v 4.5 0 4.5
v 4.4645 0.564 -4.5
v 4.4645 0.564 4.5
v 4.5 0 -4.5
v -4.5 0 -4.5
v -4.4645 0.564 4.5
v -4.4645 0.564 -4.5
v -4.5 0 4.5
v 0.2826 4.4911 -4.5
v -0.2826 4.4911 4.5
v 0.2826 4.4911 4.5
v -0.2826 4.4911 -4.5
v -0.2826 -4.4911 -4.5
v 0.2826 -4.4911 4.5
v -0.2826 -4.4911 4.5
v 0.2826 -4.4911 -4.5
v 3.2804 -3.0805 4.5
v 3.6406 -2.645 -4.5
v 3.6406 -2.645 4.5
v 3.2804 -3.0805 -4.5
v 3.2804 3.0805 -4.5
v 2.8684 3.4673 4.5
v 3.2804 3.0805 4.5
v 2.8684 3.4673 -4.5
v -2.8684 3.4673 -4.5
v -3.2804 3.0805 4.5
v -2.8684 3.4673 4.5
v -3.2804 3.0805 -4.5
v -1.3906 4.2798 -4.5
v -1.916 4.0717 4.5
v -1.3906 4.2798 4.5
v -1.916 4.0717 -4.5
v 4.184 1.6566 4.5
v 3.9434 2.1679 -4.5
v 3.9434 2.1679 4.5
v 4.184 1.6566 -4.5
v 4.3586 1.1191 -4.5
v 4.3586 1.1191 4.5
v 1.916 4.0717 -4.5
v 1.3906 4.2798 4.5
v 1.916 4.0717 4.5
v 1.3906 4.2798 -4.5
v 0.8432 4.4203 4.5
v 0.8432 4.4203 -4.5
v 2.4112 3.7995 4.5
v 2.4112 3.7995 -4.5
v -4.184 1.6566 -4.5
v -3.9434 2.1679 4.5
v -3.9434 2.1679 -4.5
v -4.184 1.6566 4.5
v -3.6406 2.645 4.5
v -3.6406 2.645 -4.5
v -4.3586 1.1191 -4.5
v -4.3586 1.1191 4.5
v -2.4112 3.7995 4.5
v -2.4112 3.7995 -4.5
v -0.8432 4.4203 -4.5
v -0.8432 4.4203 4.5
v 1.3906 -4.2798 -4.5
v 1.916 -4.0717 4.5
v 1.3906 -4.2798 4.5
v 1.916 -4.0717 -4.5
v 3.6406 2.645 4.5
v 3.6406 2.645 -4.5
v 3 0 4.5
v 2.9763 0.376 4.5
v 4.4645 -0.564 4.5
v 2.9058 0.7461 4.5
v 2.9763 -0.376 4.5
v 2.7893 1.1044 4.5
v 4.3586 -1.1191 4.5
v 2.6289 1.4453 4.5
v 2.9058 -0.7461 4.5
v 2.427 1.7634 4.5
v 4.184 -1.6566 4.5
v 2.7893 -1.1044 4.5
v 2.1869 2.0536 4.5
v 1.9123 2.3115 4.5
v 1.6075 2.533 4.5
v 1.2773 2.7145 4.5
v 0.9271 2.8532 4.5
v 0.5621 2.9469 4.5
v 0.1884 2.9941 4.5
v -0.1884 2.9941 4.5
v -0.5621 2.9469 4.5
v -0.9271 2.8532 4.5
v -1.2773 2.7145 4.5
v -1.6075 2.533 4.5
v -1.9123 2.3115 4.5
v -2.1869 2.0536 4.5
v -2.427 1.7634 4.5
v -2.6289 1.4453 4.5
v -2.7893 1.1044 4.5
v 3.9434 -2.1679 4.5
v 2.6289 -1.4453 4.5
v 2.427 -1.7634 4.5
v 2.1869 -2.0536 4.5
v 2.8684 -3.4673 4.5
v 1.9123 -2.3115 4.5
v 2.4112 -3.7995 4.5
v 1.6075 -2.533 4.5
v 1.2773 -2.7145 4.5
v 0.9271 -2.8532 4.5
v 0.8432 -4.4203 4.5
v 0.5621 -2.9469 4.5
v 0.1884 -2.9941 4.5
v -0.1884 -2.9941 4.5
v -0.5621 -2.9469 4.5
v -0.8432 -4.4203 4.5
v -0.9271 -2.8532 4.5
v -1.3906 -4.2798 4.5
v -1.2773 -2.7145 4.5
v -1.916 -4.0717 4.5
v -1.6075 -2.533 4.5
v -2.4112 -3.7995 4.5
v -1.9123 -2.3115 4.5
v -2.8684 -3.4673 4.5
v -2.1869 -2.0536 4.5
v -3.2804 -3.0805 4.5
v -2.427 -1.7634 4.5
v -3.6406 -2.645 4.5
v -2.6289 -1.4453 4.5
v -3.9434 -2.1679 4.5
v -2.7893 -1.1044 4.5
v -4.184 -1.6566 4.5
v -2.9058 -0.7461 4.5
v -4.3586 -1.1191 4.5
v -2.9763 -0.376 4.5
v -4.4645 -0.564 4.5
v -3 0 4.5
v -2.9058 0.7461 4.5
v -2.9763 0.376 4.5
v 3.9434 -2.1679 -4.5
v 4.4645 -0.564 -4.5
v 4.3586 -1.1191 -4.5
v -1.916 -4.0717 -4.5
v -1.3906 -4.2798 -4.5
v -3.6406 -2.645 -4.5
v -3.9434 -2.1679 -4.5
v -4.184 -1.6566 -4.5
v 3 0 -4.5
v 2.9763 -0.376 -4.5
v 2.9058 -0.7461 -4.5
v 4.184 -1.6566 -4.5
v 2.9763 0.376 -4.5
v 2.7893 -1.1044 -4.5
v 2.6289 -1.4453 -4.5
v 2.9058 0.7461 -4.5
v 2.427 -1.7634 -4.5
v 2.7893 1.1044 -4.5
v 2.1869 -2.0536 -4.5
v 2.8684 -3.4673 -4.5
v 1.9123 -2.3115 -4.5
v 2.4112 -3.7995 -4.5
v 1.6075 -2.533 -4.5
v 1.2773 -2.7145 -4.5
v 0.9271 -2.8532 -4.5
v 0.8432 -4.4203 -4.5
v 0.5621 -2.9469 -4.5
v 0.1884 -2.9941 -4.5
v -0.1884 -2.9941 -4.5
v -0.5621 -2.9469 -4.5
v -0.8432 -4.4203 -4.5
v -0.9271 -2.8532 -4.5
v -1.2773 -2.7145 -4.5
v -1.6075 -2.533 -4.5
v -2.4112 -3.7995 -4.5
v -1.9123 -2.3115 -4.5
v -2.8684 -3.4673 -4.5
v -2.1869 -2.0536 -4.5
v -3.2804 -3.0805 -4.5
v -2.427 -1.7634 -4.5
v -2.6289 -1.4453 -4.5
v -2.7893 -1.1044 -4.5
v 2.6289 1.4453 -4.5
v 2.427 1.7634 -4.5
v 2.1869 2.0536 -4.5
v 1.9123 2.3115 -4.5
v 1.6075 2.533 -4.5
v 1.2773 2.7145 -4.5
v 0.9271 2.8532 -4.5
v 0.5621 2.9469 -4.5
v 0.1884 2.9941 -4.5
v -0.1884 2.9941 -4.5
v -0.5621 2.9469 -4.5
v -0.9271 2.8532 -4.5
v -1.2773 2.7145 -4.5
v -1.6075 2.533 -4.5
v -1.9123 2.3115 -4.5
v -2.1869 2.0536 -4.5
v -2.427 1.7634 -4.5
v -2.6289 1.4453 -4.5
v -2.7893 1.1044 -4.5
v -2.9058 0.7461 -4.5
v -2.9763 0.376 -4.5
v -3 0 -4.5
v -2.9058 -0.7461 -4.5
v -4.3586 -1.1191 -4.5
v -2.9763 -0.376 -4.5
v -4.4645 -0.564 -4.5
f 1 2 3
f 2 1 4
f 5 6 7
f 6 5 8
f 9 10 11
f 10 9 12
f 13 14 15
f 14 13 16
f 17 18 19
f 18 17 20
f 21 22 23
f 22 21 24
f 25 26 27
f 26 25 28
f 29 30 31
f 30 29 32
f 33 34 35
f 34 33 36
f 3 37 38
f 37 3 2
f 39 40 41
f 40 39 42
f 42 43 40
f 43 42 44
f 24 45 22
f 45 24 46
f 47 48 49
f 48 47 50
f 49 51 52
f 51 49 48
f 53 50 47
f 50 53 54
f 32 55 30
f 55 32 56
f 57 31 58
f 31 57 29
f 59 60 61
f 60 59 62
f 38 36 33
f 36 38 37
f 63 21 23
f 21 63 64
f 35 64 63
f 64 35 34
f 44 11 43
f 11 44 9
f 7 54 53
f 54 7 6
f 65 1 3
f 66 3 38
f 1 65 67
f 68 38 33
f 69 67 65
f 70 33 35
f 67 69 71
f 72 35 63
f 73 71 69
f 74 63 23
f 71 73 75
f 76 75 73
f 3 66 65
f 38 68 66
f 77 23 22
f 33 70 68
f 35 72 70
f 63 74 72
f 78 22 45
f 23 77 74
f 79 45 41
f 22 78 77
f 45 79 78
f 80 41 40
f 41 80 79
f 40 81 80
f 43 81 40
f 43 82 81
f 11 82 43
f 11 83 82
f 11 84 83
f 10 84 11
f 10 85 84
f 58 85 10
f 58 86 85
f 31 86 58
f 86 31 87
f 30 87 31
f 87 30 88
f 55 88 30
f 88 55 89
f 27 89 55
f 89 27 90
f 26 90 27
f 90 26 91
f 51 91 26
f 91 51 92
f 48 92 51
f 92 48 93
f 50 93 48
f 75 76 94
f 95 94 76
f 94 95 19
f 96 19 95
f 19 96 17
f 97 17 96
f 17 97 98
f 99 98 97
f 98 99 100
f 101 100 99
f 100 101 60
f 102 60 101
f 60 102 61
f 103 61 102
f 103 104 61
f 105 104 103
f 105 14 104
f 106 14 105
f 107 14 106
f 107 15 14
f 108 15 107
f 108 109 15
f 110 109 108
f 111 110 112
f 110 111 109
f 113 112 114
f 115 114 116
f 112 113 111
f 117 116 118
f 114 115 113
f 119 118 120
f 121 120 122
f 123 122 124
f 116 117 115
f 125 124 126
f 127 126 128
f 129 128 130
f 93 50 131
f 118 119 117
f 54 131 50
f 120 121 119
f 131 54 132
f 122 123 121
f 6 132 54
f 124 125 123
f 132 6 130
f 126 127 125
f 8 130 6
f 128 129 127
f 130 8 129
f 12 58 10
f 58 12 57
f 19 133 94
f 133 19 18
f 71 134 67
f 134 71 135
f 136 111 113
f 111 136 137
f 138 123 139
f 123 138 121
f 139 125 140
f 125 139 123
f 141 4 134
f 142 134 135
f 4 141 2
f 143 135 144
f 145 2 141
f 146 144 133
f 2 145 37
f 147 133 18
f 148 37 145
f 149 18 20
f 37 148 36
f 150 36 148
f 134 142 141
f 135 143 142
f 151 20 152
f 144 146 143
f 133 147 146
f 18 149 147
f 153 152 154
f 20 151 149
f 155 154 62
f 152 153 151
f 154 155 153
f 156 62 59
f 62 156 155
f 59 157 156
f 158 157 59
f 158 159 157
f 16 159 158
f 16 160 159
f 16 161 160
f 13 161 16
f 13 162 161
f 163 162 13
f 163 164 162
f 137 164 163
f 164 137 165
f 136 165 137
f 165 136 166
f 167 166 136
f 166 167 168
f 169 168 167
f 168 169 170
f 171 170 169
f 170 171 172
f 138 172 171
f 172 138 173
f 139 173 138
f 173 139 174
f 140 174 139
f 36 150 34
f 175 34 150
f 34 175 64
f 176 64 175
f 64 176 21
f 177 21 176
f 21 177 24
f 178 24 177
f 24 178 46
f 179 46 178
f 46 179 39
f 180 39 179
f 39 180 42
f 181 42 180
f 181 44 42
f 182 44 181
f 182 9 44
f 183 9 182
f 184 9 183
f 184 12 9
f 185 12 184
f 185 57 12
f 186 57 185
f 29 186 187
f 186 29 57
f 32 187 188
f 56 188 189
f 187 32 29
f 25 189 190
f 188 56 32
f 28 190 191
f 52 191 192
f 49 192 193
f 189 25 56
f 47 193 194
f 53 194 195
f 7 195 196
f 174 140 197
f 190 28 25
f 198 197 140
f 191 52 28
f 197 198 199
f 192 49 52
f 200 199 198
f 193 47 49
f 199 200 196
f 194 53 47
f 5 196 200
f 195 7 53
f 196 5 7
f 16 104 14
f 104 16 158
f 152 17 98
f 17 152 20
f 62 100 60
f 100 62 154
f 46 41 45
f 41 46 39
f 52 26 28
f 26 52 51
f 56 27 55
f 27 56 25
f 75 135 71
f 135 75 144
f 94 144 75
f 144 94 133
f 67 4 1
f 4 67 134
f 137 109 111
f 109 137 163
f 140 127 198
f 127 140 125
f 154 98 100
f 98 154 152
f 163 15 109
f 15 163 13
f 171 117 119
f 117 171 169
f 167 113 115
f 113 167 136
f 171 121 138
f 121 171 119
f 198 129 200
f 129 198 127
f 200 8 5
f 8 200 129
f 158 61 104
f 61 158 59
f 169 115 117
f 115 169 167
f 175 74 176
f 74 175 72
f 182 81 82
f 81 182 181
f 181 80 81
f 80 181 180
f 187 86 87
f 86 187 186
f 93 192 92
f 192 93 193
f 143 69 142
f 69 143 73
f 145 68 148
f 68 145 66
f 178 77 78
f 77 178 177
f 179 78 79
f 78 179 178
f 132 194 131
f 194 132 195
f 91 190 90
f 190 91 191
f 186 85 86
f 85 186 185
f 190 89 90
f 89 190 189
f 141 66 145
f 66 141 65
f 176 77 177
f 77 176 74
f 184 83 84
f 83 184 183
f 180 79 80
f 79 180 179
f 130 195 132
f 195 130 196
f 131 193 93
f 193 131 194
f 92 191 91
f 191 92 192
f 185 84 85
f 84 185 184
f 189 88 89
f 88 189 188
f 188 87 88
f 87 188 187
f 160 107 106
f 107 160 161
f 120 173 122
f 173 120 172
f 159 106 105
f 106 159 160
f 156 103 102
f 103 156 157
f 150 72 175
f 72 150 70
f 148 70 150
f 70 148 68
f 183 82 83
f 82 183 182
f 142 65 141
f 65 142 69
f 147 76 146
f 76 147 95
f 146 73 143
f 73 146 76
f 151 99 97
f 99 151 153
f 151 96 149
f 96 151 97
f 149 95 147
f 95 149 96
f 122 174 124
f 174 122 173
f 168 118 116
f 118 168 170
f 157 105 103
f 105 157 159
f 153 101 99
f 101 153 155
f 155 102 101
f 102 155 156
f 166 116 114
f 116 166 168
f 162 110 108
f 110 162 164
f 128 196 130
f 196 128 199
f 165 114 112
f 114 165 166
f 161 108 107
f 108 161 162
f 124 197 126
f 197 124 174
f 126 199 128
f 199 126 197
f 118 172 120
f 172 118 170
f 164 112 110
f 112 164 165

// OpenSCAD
$fn = 50;


difference() {
	union() {
		translate(v = [0, 0, -4.5000000000]) {
			cylinder(h = 9, r = 4.5000000000);
		}
	}
	union() {
		translate(v = [0, 0, -100.0000000000]) {
			cylinder(h = 200, r = 3);
		}
	}
}
